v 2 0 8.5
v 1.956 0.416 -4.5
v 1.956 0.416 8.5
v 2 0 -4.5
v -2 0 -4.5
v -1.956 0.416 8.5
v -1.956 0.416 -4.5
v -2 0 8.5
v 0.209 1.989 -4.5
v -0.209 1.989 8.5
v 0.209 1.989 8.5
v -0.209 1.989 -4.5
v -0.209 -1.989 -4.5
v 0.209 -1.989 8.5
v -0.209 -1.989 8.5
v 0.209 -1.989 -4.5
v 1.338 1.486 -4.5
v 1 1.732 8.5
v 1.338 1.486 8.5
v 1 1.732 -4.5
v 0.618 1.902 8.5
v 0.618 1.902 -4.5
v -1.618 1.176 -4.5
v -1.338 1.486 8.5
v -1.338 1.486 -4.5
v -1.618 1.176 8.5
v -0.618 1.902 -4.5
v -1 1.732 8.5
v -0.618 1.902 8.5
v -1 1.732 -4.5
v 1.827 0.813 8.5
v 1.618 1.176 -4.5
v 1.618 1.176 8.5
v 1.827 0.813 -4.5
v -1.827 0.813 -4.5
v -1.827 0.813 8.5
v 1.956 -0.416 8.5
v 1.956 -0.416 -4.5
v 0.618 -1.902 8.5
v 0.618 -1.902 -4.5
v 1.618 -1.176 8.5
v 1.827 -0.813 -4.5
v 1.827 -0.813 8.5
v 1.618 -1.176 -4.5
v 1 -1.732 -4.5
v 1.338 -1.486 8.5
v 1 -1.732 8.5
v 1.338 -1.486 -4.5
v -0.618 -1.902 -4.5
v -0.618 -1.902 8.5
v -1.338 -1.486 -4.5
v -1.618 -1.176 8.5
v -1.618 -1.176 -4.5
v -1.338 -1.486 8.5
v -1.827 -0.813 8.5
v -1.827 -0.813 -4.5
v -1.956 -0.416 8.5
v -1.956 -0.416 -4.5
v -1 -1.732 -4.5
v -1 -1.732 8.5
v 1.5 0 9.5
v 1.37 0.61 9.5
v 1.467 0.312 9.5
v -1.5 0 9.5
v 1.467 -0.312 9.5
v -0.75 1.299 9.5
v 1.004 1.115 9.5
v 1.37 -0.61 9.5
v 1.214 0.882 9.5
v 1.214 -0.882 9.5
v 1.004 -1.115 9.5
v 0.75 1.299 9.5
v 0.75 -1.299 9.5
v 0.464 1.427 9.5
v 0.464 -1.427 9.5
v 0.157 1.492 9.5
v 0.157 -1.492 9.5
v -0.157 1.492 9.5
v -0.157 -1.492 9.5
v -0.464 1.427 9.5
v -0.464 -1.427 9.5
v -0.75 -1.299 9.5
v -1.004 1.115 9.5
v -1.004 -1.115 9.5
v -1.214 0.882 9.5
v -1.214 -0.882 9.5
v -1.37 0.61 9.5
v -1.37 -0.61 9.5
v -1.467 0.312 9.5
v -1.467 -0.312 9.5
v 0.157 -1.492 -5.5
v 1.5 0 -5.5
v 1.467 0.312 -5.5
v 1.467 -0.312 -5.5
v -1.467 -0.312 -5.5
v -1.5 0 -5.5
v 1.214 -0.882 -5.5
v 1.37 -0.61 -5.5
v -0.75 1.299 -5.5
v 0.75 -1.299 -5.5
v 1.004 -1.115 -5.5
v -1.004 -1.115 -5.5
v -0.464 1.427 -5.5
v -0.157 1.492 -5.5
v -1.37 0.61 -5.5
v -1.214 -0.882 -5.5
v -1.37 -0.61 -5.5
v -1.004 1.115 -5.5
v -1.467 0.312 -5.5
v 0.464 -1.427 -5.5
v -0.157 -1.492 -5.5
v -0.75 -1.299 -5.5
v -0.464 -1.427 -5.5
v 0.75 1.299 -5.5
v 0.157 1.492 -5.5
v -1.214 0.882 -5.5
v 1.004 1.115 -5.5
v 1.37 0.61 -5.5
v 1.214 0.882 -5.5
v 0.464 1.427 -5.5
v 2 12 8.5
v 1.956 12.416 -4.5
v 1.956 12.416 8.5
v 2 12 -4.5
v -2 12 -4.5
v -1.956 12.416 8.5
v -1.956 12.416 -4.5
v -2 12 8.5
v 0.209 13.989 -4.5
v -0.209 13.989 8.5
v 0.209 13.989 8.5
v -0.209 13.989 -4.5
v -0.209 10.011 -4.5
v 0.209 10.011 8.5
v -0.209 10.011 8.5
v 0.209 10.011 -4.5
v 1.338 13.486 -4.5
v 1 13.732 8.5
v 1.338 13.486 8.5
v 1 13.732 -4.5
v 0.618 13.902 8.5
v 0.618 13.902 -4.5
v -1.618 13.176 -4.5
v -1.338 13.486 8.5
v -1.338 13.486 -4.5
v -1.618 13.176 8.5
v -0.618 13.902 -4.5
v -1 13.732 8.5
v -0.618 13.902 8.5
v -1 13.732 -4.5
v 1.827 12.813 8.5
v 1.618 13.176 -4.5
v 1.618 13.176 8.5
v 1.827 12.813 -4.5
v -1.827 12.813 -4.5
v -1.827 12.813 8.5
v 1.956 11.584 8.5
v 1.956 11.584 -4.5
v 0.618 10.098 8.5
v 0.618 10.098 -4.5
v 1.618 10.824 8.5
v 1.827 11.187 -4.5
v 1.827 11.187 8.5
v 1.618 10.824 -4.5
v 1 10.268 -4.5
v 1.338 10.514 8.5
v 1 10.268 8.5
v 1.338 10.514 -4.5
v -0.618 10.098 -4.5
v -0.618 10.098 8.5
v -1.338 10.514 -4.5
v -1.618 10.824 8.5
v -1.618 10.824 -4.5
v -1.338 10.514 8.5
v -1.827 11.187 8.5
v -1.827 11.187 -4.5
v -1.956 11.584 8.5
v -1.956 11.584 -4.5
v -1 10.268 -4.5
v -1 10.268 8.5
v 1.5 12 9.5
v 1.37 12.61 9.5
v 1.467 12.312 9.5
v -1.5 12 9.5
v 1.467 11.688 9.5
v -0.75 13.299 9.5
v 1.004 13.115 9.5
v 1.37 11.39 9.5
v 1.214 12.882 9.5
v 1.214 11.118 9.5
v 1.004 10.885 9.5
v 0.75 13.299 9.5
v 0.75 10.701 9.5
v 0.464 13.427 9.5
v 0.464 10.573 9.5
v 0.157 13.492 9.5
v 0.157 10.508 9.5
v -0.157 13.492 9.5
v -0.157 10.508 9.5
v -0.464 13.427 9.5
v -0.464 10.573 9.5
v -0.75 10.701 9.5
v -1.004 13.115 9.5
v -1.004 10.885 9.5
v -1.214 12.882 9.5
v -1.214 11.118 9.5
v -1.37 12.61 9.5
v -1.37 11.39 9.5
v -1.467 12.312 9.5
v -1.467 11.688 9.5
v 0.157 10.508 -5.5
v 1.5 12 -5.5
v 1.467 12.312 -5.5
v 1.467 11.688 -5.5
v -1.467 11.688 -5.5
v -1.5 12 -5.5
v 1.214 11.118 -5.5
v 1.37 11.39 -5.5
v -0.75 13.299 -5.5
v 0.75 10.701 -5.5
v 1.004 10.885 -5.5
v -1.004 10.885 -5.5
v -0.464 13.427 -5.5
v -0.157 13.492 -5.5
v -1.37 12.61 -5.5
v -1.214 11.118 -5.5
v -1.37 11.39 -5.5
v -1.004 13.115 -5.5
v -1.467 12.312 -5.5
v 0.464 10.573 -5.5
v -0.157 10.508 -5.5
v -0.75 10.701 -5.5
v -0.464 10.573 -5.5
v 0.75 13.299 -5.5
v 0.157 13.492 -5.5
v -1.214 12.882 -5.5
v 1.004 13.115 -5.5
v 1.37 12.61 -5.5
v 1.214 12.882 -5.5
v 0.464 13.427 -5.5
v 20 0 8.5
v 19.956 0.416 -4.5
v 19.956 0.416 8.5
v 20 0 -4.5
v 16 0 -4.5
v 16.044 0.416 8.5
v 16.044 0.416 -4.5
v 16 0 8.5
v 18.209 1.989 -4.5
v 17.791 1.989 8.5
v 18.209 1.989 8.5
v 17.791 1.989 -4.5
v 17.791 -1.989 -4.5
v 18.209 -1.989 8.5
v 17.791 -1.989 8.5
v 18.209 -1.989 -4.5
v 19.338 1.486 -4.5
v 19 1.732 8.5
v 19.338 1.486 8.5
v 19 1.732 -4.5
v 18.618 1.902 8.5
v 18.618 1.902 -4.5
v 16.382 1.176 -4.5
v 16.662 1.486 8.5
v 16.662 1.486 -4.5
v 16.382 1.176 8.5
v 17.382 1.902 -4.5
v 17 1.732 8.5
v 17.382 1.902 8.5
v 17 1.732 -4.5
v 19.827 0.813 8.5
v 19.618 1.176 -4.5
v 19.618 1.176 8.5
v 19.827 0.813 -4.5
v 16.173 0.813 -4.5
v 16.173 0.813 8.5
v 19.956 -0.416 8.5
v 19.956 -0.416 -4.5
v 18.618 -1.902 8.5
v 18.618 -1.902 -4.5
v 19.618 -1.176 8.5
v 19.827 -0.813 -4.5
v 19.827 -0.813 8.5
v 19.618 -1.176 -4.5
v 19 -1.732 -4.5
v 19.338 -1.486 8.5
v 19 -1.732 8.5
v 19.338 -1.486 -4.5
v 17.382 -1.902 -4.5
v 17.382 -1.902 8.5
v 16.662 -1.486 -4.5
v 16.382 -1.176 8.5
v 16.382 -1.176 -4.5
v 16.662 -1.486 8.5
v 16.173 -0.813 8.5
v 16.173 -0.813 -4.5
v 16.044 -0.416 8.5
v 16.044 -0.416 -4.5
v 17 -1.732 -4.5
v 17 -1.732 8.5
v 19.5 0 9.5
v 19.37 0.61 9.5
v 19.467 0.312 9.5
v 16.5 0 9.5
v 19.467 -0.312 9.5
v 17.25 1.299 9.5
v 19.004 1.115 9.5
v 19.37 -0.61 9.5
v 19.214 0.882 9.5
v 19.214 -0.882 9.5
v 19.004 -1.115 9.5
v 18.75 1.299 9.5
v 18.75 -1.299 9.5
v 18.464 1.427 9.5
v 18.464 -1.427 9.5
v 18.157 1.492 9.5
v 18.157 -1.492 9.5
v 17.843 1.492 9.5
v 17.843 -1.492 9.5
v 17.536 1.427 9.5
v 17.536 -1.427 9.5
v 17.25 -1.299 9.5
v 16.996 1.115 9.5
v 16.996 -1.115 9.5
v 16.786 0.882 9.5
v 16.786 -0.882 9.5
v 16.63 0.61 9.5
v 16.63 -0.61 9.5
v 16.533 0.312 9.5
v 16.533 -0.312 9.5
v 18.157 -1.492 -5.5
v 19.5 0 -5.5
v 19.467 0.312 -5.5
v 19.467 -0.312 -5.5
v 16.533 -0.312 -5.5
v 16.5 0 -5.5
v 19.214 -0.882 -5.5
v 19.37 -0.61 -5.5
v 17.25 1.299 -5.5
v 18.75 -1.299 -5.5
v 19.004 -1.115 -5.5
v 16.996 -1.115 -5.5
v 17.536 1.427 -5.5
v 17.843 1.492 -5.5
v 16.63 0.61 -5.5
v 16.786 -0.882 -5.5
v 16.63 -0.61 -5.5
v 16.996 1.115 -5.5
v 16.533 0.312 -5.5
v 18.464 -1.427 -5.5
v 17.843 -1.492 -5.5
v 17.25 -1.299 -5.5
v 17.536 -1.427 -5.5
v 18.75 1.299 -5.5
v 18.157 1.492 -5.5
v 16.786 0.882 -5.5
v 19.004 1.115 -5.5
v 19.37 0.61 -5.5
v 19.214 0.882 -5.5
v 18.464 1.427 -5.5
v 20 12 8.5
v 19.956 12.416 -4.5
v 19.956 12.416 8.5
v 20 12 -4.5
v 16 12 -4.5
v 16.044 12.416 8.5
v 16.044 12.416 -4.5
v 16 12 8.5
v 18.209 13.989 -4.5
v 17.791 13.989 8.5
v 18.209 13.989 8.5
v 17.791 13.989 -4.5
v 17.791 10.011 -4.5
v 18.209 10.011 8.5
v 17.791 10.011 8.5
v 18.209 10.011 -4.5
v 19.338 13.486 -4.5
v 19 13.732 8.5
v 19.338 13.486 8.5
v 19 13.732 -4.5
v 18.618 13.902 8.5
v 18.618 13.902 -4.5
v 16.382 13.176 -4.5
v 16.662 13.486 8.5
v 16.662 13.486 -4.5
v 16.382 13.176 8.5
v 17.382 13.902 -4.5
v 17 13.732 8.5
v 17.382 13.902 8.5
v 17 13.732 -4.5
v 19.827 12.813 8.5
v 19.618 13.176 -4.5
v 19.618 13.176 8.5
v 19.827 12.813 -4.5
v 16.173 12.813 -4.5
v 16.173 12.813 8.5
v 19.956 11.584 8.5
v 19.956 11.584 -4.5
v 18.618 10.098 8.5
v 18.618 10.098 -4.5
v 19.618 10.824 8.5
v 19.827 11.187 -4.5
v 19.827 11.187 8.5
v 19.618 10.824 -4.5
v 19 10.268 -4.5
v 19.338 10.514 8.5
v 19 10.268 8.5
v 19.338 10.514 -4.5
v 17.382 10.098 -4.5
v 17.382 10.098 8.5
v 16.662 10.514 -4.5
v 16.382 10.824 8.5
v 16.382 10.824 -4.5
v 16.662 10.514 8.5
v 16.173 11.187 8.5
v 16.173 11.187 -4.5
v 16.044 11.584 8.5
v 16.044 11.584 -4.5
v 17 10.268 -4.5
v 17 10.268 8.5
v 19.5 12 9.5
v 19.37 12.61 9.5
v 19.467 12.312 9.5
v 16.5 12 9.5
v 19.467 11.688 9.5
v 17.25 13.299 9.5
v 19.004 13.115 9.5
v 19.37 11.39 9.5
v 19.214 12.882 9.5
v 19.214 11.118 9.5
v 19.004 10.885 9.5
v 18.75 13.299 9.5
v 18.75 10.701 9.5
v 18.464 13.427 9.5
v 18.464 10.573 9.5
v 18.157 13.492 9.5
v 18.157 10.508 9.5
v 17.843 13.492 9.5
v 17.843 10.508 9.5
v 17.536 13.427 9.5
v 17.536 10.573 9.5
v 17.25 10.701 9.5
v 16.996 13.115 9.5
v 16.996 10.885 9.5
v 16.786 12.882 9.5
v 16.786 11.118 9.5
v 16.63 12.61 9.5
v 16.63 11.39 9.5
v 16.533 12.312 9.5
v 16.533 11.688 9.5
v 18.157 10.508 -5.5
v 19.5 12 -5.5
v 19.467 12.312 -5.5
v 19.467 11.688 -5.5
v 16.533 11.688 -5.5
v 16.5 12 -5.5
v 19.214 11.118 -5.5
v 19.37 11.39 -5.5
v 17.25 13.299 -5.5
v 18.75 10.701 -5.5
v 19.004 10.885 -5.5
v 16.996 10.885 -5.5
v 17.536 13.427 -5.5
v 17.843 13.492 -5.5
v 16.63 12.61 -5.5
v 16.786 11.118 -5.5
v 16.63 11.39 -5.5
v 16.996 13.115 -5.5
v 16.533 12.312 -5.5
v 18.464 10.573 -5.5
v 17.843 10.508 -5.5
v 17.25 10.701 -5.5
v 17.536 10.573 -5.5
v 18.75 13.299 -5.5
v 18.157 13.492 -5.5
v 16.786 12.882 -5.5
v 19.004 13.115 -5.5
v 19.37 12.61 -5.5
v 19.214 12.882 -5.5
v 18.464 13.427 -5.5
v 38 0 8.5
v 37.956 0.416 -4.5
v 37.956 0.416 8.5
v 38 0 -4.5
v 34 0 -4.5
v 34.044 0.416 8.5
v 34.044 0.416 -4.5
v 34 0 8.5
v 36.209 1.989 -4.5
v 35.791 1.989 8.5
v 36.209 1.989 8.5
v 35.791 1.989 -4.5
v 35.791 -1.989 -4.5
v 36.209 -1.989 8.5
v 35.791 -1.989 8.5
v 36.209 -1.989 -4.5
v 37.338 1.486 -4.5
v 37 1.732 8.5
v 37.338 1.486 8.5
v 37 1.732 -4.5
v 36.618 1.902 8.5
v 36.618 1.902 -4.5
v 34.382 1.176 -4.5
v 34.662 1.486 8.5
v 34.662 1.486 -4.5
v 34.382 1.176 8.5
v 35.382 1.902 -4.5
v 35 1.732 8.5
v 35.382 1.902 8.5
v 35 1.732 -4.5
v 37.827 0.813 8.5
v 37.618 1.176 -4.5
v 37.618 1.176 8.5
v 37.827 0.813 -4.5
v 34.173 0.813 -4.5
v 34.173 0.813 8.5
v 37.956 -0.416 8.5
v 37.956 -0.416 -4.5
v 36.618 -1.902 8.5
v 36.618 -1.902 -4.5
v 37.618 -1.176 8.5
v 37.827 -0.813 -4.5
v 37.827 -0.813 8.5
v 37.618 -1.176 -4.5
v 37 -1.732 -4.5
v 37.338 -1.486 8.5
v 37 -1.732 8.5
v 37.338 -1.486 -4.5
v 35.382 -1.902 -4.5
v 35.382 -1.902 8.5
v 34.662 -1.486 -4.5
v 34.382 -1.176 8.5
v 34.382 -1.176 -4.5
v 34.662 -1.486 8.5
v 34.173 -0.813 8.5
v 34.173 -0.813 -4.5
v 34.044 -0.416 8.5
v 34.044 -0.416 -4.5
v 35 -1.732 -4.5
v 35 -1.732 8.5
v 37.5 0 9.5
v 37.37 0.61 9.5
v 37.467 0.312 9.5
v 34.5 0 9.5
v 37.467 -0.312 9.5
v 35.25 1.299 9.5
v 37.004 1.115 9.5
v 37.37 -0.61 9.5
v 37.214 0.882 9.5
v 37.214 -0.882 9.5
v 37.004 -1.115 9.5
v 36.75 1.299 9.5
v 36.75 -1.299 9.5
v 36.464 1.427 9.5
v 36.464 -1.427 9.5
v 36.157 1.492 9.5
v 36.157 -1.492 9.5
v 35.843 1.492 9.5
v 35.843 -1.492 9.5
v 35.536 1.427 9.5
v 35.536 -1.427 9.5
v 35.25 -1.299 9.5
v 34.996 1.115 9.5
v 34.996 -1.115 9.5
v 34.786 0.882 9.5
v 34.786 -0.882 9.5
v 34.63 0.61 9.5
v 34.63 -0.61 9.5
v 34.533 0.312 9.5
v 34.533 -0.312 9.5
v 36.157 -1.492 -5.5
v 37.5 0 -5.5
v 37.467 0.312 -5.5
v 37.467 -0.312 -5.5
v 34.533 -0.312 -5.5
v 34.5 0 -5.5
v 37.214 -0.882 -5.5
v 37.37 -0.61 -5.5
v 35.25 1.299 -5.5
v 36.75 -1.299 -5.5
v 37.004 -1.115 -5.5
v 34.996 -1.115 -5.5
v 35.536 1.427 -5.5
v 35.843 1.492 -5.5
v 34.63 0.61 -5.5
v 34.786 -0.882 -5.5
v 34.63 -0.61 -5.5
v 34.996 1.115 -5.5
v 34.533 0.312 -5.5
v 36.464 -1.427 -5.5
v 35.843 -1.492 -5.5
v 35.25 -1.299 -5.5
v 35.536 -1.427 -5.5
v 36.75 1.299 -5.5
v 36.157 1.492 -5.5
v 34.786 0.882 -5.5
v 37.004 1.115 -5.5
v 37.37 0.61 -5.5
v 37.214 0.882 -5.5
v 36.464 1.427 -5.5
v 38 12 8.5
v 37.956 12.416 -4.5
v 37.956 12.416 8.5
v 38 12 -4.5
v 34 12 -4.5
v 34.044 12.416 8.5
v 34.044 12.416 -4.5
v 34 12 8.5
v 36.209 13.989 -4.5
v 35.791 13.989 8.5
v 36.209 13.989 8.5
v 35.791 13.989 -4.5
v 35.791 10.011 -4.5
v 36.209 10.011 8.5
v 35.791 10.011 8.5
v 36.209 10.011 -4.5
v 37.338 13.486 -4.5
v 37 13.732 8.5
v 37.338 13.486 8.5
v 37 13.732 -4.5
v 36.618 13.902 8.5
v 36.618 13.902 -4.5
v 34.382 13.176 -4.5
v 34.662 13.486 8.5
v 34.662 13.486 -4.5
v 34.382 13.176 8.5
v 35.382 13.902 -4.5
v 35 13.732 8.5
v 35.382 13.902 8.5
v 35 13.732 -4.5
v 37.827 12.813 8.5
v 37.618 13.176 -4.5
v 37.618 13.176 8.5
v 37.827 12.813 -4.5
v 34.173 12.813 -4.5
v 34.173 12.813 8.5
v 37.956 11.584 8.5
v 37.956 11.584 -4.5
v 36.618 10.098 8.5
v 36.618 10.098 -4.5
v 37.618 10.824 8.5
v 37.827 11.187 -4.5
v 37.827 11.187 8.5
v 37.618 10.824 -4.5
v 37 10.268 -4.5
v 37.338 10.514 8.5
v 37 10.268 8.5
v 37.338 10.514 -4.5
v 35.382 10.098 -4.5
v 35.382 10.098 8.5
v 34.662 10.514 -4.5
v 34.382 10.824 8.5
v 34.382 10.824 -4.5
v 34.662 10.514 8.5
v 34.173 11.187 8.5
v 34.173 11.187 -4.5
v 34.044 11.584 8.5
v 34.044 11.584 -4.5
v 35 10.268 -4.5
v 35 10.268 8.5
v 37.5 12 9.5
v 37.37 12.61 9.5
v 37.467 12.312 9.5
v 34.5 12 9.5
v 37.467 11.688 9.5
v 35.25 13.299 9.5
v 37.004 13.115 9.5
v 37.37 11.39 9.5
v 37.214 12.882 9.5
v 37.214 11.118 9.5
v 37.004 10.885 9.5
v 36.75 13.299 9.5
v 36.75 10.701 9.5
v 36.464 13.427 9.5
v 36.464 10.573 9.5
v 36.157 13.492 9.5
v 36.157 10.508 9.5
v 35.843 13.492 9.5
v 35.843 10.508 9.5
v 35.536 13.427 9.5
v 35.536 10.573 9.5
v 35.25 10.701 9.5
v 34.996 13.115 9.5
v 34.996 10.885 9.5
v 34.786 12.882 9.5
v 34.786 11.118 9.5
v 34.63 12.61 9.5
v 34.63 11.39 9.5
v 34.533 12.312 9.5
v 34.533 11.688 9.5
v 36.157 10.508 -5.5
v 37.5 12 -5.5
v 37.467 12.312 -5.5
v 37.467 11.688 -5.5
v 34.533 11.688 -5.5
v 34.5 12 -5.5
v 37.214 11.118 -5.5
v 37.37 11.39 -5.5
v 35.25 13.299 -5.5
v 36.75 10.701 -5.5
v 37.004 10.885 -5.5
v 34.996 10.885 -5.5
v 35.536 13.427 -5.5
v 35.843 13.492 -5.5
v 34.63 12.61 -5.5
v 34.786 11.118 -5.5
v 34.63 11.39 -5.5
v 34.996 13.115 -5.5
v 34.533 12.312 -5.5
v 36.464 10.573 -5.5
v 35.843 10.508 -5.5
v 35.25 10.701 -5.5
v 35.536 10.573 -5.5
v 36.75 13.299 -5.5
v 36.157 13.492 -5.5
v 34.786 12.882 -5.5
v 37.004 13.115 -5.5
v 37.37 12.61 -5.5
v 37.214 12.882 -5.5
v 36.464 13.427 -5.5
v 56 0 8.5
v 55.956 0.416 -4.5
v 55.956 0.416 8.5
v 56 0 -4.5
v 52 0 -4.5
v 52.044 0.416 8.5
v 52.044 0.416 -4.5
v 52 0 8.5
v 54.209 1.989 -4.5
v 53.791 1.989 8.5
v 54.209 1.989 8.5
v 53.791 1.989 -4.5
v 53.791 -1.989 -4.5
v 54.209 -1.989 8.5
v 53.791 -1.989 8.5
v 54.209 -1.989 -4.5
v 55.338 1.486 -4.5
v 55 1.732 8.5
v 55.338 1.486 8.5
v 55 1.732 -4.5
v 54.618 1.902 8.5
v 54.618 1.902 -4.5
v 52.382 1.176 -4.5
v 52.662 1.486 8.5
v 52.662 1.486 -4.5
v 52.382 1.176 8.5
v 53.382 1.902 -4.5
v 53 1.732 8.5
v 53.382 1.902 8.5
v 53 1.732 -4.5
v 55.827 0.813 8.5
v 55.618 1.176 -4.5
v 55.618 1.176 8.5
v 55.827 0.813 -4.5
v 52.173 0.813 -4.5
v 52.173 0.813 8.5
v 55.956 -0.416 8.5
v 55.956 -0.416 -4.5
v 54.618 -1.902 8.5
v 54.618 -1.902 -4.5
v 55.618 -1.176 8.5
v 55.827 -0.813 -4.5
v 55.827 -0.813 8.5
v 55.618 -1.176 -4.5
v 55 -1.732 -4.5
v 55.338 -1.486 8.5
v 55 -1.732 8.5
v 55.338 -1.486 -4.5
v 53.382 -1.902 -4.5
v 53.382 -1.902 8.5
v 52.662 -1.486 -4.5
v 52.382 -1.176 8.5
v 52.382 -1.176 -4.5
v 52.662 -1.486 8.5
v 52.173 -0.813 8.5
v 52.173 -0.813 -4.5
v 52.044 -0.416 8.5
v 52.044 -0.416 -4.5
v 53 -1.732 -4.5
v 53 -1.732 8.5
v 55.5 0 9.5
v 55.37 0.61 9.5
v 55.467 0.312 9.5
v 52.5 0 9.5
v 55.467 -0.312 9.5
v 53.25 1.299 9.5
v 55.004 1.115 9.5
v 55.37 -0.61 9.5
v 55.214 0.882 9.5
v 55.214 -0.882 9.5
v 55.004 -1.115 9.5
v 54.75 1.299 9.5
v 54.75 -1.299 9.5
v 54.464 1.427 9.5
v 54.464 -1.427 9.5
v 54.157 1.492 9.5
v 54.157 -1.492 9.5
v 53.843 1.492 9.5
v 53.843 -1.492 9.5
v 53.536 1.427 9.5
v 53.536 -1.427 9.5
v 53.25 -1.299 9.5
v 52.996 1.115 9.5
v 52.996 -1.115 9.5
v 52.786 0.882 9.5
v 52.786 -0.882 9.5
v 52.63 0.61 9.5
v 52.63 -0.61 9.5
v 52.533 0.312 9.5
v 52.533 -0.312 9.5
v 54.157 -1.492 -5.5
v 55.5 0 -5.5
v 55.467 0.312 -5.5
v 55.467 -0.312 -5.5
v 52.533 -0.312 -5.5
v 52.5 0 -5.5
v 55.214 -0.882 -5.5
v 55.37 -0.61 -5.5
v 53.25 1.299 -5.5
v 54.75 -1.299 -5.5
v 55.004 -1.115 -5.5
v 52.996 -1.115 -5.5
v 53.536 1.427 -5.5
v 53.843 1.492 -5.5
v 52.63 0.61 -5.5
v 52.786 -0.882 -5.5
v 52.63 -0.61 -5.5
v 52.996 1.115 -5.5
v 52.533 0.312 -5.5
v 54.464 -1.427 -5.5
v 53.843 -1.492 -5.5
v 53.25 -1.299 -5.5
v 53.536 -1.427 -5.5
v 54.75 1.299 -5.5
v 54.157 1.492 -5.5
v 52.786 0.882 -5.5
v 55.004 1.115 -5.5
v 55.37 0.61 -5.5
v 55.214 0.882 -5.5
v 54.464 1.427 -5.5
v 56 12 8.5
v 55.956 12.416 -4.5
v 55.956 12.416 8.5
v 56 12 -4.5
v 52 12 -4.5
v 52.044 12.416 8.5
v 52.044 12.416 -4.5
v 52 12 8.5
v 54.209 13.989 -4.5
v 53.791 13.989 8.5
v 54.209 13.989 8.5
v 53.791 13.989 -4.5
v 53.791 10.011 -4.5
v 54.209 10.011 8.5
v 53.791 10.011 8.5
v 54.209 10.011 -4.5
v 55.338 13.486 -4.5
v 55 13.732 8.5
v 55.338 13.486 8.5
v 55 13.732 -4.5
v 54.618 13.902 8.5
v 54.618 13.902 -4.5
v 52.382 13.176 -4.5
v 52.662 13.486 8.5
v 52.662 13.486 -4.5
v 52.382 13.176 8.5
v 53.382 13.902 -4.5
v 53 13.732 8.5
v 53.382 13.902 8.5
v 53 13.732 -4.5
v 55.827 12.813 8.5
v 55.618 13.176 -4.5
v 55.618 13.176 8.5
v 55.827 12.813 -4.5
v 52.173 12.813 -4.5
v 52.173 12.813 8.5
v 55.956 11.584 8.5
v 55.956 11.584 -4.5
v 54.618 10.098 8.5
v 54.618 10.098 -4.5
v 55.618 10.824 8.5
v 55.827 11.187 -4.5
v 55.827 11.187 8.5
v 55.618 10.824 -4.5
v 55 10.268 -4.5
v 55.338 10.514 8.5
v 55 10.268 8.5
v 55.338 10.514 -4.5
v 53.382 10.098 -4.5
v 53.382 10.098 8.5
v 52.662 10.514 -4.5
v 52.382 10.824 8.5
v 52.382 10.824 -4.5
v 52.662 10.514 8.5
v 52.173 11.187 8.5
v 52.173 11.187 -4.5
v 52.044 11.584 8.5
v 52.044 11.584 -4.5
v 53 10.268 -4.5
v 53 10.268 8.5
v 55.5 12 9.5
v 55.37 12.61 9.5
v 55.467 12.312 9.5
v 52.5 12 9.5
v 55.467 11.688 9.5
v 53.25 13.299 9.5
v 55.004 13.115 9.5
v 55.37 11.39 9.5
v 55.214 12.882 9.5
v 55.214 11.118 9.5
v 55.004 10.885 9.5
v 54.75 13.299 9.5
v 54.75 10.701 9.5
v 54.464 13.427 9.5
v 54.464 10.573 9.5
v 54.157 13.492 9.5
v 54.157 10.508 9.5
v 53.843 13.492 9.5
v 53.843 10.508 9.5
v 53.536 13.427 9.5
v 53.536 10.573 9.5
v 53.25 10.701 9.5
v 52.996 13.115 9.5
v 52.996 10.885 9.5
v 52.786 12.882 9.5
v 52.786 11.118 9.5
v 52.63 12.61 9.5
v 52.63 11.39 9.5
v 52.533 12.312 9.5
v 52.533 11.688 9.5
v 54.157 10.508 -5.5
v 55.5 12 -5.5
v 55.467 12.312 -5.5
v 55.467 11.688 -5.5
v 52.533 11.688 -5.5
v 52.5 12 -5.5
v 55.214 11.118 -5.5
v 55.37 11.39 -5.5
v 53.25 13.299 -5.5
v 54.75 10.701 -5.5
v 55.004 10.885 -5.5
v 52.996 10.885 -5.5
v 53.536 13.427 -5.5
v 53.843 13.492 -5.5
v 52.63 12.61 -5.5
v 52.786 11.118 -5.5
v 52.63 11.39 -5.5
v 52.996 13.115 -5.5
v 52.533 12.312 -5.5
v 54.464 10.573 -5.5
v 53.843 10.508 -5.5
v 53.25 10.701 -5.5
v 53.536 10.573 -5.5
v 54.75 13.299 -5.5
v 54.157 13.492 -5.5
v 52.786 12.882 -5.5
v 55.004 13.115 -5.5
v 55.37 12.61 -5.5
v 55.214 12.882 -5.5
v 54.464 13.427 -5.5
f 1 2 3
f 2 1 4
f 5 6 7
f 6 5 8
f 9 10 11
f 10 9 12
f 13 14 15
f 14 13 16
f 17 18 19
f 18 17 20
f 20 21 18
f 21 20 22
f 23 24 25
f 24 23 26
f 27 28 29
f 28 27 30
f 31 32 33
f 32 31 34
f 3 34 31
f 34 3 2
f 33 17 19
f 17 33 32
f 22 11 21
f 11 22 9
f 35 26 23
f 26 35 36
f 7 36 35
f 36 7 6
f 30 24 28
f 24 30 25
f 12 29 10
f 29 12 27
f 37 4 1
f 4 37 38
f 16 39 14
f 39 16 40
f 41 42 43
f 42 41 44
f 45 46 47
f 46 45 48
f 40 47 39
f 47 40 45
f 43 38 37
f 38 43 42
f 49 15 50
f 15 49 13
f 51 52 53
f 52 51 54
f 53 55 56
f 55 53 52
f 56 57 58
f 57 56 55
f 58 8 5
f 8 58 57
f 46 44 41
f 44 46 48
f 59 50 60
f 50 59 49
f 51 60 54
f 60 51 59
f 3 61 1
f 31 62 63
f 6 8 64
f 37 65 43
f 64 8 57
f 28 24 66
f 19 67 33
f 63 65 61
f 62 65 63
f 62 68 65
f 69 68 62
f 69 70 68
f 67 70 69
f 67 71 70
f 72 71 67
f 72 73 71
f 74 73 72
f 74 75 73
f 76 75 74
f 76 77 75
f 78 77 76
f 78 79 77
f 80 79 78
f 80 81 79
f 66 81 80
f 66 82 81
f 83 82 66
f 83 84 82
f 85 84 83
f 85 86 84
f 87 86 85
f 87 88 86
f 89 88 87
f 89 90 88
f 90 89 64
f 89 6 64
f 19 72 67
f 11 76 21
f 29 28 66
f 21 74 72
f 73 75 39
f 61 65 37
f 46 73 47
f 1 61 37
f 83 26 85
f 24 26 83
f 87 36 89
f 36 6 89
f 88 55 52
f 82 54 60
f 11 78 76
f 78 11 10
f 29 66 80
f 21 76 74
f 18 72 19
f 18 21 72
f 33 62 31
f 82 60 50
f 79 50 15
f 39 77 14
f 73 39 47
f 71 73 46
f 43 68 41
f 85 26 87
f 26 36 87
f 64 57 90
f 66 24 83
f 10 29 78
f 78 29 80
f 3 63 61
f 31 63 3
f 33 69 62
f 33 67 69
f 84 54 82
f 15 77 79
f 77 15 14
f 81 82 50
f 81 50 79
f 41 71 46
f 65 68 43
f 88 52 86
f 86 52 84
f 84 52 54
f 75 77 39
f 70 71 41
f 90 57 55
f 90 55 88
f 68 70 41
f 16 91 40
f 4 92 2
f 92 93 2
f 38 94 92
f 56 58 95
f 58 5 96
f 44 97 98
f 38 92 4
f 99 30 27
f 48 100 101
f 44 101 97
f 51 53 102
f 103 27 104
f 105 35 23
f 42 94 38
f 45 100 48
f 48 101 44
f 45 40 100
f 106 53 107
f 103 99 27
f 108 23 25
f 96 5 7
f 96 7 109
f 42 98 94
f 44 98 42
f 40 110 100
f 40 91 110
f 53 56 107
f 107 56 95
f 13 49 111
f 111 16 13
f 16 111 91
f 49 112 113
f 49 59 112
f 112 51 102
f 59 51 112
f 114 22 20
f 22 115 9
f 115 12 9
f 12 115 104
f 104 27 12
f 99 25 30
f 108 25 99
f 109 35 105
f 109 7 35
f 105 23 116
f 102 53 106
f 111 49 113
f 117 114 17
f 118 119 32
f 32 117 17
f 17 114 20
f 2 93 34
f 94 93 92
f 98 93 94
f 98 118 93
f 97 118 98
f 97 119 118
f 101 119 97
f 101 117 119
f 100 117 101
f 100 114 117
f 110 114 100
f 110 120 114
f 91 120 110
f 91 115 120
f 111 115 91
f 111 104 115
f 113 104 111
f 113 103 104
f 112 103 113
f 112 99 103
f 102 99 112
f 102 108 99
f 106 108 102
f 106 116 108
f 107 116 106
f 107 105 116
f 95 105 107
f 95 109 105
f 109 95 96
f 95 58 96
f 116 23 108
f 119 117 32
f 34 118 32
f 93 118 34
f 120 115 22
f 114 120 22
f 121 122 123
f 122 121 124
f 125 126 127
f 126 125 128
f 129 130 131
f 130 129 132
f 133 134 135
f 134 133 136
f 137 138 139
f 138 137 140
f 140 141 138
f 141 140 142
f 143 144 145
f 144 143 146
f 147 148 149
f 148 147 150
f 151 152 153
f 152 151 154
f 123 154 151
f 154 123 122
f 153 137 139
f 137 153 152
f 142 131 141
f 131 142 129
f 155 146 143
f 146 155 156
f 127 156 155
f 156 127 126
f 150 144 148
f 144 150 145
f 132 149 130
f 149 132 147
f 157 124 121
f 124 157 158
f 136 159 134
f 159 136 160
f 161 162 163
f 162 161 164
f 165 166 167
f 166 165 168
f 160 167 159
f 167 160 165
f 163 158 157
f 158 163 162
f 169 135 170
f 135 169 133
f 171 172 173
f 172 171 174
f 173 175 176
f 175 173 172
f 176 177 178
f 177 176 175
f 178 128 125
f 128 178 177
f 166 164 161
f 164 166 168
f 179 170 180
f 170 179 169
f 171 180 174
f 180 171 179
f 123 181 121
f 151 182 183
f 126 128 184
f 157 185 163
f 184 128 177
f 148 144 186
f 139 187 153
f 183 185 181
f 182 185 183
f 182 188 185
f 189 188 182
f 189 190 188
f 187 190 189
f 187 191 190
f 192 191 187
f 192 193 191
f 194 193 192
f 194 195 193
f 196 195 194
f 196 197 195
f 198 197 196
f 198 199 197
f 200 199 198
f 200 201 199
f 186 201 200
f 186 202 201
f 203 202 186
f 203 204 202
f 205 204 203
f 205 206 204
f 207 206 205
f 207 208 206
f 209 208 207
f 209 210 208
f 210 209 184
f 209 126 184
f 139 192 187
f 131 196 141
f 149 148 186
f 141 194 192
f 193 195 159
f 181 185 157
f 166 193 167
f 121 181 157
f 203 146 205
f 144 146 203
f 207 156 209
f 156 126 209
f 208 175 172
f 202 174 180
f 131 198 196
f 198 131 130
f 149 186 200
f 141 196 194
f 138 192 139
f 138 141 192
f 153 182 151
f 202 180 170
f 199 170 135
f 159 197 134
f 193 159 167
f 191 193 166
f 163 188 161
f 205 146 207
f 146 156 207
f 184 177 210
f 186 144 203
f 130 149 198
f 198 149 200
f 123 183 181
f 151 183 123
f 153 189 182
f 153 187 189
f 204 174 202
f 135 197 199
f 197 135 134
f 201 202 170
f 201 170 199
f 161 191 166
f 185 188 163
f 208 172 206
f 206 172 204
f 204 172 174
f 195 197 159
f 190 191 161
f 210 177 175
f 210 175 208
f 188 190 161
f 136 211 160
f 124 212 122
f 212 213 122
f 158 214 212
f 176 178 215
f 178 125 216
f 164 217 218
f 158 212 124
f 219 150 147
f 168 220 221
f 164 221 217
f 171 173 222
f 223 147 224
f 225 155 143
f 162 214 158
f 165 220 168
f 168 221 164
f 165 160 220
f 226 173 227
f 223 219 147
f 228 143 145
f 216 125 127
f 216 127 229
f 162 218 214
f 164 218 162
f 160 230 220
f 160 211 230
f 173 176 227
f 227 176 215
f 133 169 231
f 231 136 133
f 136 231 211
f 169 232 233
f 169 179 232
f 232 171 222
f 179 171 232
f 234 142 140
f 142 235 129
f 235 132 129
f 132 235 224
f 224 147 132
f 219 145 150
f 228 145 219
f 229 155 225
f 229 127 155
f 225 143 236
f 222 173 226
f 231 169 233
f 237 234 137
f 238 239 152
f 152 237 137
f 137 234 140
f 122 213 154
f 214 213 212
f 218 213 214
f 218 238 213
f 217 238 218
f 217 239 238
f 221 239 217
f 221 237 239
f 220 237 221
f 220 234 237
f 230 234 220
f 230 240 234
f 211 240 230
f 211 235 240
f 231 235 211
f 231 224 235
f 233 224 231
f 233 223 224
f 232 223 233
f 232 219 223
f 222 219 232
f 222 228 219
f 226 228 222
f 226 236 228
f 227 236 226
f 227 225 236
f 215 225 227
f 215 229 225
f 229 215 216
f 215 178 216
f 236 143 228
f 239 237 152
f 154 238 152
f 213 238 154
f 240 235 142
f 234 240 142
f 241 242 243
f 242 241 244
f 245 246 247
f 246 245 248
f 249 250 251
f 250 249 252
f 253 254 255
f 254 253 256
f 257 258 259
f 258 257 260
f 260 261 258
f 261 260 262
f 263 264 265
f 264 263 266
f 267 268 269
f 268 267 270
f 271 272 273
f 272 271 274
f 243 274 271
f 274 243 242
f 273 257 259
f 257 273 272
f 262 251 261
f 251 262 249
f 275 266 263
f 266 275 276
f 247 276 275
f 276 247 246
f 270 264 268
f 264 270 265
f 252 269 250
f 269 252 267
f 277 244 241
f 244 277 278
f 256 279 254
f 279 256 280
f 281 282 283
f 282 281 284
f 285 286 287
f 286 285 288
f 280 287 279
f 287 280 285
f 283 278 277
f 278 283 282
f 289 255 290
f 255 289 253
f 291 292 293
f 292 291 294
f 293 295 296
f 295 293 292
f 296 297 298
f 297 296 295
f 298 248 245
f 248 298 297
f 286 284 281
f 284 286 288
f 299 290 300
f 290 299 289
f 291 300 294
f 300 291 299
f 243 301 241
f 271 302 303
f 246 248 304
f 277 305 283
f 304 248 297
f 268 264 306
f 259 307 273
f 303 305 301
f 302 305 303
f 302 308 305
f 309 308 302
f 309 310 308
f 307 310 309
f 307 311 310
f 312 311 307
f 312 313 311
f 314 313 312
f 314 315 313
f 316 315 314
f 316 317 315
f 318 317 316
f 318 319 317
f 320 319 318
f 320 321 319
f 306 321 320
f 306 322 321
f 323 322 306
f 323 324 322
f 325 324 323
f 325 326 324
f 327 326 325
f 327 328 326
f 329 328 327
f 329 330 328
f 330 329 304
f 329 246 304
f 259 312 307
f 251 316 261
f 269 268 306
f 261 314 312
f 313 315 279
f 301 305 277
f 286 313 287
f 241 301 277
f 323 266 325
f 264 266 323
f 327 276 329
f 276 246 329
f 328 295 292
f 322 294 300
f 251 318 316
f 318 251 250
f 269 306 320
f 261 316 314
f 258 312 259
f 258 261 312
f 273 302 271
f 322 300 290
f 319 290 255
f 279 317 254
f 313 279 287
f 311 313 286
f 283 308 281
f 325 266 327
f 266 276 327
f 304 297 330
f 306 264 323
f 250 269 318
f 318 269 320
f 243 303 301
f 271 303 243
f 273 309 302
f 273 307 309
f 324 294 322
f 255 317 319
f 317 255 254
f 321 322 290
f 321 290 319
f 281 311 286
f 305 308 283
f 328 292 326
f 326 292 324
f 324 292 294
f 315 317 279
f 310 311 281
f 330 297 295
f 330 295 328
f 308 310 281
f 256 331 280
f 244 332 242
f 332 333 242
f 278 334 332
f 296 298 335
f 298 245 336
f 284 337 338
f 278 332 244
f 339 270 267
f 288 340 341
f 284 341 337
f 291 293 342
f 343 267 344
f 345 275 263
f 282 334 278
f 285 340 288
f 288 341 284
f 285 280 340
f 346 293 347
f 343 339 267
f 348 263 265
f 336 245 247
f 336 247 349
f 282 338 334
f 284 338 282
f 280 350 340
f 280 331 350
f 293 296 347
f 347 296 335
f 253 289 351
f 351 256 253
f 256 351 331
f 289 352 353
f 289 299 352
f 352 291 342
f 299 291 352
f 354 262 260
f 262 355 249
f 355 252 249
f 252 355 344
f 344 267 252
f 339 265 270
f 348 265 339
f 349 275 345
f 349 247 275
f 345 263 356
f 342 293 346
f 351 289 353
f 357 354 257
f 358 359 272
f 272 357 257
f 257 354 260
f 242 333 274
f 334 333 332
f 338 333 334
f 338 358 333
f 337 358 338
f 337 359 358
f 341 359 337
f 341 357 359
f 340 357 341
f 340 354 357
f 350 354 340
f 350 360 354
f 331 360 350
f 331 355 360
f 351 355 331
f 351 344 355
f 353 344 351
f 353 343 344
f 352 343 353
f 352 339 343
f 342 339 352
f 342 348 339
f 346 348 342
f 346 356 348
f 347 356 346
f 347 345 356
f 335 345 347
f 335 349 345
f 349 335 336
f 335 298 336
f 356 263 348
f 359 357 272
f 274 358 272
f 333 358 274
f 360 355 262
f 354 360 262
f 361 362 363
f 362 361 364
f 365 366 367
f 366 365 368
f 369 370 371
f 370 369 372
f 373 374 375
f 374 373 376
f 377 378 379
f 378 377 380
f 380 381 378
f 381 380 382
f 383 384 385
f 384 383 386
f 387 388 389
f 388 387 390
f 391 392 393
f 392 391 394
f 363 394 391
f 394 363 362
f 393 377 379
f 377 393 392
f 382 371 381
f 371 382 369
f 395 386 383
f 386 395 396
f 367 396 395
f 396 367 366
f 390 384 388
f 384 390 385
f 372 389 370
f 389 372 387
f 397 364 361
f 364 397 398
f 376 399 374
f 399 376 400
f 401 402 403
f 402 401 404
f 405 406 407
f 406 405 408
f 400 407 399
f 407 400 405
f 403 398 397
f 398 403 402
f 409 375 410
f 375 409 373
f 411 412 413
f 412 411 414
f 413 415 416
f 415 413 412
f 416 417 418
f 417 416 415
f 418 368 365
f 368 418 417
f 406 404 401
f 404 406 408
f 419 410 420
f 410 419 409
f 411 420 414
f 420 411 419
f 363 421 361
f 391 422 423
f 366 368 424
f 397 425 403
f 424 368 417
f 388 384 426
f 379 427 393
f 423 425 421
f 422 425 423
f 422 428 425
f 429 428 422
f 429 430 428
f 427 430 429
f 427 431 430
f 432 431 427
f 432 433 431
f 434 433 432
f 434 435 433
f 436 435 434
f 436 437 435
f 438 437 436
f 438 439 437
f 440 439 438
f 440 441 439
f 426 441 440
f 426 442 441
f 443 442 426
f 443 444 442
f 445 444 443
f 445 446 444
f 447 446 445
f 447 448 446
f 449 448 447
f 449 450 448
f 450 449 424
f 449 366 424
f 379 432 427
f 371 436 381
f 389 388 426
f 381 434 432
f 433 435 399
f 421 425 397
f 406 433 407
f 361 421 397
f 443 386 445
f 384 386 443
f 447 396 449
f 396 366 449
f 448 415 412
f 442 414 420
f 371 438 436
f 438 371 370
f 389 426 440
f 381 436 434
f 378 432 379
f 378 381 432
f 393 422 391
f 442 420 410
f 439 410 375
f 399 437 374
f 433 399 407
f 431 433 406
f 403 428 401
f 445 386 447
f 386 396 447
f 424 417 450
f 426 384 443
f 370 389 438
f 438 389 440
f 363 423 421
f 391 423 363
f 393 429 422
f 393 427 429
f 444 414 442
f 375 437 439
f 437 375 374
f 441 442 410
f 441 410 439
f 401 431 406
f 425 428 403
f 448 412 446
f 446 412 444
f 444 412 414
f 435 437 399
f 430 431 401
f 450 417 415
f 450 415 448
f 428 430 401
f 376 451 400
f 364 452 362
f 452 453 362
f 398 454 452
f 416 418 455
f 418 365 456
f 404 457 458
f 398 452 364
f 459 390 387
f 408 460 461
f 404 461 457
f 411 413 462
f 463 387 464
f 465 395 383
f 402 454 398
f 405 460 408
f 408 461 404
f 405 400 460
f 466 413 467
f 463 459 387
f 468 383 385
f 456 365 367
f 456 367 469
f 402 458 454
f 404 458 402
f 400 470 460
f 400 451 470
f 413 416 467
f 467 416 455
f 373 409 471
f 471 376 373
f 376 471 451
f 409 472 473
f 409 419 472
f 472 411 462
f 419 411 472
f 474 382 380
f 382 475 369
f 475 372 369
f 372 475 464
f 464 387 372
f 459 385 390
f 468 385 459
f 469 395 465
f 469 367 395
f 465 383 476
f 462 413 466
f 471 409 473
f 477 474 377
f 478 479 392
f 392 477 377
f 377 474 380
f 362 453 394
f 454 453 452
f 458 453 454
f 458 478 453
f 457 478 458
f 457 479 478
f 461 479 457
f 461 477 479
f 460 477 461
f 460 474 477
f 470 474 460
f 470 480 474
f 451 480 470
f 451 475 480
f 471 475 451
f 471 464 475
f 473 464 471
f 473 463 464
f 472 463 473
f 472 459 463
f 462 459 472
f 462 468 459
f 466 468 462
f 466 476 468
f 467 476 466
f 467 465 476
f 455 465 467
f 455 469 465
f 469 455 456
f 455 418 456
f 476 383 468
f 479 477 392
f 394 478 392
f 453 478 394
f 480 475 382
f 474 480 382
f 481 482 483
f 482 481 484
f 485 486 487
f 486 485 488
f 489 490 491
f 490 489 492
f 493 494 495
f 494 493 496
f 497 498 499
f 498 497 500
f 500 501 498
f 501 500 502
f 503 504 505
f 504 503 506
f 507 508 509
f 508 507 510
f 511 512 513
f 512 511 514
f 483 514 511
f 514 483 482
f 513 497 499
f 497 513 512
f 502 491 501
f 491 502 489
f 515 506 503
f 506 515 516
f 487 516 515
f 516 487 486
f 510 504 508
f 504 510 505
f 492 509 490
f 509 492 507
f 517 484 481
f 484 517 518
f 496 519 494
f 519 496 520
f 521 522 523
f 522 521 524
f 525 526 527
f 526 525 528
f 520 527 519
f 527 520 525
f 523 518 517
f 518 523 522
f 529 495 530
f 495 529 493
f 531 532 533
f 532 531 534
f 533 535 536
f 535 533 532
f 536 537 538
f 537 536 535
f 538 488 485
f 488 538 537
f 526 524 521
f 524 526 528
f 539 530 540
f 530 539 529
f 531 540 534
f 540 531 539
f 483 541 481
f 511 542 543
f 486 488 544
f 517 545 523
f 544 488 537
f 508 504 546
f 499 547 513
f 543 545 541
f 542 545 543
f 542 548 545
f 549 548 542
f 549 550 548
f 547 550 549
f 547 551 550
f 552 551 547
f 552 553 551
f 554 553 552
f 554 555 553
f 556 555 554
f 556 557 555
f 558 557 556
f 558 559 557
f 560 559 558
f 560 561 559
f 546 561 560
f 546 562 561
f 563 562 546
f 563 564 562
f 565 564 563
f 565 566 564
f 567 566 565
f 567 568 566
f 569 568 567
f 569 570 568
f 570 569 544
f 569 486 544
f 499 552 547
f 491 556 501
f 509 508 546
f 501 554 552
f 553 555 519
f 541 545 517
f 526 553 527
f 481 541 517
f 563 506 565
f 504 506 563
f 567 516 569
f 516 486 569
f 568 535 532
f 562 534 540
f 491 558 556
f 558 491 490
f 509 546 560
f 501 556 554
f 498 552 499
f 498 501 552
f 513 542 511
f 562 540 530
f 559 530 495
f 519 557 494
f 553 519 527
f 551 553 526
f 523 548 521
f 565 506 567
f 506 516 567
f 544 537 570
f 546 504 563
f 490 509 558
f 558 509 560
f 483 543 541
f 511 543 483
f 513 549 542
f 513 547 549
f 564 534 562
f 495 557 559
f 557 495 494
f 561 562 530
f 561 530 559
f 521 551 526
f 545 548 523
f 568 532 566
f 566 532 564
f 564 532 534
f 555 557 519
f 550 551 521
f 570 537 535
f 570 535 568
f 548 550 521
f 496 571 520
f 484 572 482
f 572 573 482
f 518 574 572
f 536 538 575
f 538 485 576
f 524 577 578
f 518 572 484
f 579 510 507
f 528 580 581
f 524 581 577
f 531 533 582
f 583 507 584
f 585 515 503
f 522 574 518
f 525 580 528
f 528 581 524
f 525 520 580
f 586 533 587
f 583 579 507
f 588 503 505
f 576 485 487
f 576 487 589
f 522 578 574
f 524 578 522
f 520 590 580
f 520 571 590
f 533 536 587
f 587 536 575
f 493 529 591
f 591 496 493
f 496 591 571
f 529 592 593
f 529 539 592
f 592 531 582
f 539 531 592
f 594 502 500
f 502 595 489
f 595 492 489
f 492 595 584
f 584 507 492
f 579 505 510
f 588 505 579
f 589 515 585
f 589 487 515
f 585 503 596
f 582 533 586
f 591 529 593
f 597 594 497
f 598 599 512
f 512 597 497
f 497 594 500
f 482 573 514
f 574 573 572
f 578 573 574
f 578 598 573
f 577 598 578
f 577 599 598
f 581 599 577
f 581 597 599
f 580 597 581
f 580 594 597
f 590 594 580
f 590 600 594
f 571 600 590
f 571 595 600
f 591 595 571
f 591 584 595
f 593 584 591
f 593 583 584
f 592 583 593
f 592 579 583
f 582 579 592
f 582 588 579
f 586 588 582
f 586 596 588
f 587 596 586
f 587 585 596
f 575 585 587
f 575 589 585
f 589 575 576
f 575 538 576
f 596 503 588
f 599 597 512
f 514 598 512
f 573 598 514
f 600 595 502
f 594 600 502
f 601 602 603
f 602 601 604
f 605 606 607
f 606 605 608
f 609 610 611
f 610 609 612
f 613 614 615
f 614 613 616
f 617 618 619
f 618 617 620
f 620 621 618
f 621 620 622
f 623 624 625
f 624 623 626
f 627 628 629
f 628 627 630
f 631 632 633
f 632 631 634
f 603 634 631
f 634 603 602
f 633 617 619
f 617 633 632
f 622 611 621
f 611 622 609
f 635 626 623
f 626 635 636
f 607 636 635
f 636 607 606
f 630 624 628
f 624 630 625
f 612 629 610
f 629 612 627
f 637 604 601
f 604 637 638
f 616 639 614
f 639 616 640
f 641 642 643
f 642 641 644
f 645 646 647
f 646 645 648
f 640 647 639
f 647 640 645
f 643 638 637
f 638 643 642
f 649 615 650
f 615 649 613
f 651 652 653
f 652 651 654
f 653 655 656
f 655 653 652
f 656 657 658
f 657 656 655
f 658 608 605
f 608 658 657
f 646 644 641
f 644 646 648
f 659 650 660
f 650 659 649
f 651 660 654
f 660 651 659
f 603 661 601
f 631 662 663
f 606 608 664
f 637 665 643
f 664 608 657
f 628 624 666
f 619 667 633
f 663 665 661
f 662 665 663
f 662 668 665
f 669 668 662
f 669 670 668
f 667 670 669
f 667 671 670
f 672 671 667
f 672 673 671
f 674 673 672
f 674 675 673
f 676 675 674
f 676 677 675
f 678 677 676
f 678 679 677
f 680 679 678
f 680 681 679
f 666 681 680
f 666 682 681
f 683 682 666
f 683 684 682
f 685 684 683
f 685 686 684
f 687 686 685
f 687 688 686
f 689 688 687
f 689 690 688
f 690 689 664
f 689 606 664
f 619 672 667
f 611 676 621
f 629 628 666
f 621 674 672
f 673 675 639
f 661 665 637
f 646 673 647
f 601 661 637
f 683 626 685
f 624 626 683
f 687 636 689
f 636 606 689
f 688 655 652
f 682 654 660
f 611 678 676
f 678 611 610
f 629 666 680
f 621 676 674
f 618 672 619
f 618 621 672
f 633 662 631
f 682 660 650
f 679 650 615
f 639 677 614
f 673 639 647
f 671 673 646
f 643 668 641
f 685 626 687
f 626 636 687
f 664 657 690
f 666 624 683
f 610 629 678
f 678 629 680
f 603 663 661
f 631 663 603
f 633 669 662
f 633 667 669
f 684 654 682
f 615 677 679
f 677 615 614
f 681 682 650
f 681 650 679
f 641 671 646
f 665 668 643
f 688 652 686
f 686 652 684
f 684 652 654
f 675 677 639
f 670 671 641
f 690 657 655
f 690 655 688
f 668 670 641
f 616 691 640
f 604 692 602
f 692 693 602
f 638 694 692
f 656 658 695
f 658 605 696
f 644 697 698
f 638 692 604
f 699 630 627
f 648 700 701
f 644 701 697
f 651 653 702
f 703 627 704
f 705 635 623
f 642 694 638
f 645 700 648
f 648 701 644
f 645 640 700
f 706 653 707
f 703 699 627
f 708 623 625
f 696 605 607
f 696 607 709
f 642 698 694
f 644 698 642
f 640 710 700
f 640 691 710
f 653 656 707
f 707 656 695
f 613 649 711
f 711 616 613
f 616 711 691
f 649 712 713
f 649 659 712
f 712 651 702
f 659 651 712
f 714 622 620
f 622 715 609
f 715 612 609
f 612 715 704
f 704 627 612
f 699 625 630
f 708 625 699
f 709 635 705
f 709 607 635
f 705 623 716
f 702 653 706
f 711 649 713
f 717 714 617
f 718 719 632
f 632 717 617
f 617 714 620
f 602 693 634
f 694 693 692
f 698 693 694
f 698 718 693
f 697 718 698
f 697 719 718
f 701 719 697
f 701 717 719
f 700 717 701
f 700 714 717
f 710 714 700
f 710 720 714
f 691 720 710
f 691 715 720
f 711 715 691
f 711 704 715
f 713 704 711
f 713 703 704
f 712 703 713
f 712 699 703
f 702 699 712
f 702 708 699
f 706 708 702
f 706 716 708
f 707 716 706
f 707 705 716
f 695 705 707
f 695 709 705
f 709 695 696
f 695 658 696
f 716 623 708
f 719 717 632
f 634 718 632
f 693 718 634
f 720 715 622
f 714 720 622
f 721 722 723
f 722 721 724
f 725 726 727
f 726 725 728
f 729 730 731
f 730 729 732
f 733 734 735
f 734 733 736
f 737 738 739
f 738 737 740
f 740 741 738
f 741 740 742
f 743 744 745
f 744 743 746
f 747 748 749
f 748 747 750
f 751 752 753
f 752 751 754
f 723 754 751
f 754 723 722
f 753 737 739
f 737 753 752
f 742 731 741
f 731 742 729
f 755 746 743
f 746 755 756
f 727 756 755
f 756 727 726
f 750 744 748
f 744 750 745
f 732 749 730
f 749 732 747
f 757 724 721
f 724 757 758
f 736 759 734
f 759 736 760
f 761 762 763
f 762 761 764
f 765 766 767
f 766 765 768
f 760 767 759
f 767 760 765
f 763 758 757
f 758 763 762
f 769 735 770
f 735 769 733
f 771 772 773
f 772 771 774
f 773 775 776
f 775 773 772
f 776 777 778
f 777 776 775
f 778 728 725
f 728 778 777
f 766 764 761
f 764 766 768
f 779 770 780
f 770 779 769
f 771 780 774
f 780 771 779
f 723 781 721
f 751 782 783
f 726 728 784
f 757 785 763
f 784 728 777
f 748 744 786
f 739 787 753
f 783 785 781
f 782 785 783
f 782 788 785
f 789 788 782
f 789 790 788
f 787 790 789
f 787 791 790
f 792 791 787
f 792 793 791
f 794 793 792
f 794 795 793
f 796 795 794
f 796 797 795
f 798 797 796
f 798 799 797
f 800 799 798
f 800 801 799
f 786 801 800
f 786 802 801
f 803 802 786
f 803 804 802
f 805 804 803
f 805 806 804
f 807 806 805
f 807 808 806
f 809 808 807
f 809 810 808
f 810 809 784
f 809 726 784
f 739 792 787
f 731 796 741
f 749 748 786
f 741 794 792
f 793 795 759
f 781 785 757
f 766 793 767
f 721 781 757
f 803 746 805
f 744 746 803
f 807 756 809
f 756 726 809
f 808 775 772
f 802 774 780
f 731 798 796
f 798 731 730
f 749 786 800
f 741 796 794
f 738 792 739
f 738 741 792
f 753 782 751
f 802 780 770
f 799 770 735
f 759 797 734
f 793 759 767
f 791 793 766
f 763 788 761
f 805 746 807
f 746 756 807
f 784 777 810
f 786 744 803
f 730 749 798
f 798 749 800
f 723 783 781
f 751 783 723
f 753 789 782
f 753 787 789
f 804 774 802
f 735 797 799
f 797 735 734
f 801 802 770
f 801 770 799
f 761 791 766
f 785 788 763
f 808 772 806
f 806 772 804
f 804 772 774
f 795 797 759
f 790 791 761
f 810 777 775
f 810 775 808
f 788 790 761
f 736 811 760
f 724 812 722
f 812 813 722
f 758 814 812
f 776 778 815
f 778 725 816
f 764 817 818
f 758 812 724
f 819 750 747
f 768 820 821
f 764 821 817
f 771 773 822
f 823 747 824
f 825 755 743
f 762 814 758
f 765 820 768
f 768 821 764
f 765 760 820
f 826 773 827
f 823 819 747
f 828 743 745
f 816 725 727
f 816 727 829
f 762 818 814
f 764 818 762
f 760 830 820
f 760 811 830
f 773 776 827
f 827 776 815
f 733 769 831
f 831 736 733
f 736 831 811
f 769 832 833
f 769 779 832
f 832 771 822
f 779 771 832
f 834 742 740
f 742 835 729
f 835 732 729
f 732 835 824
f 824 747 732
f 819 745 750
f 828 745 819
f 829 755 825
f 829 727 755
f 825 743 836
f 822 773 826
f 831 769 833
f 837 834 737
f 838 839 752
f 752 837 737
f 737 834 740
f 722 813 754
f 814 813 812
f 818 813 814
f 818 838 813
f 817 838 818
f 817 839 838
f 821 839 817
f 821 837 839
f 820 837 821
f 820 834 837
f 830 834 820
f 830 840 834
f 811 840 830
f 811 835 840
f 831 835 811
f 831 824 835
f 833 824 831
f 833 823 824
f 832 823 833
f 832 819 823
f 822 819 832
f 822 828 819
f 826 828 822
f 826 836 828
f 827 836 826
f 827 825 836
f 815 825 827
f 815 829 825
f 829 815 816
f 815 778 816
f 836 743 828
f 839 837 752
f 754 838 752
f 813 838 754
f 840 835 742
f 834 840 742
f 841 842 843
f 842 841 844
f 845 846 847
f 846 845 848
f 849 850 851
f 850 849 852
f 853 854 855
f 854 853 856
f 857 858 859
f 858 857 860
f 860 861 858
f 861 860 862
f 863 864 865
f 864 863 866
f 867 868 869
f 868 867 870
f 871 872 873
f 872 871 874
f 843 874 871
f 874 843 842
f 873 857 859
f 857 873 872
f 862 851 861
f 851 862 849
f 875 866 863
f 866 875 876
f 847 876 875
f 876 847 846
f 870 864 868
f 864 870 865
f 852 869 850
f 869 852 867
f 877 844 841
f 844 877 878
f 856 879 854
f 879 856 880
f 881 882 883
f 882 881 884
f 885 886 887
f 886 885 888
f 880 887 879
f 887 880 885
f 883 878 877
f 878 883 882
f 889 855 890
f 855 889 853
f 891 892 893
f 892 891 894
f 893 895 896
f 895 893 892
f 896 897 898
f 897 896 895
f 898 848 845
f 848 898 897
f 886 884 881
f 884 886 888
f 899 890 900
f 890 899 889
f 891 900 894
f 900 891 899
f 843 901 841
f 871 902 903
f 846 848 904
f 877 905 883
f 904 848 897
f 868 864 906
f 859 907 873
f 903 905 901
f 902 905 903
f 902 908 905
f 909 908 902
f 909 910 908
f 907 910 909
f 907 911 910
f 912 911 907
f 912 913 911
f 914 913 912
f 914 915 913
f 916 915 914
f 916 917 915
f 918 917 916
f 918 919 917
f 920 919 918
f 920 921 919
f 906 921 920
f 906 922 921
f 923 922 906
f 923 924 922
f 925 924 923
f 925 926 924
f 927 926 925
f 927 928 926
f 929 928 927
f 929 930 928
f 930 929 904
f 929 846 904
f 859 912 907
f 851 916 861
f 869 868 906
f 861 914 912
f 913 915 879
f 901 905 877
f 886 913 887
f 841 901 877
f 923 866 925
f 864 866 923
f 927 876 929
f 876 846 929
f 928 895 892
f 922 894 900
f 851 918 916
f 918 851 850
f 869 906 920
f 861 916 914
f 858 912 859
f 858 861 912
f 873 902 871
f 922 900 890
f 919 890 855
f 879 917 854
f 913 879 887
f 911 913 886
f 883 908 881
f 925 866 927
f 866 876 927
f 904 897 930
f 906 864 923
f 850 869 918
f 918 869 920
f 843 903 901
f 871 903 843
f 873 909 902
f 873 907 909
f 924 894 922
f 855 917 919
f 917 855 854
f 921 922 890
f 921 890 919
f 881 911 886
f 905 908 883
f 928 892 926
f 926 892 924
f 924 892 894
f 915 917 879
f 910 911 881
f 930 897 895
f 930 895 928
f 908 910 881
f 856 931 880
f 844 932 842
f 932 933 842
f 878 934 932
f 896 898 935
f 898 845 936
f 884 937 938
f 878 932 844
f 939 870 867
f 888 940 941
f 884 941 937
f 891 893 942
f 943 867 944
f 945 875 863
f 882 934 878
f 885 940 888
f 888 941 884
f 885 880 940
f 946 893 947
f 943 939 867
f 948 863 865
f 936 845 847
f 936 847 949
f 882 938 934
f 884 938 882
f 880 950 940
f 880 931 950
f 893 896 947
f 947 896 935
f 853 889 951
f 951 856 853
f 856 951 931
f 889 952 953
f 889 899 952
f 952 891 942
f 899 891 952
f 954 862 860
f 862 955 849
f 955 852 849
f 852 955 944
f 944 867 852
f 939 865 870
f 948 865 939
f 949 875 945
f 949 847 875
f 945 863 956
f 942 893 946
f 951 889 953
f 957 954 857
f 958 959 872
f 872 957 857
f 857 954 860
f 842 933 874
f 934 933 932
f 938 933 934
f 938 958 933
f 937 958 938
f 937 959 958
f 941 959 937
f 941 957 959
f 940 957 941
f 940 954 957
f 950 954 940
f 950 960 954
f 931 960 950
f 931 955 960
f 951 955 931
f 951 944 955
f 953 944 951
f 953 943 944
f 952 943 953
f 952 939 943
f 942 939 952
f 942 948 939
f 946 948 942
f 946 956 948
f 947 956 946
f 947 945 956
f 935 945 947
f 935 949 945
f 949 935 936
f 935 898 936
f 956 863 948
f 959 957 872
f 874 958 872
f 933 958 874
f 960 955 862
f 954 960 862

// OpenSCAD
// Lote de 8 pines de ensamble para la cabeza de vaca COW AI
// Diametro 4.0 mm, Longitud 15.0 mm, biselados en ambos extremos para insercion suave

$fn = 30;

module single_pin() {
    rotate([0, 90, 0]) {
        cylinder(d = 4.0, h = 13.0, center = true);
        // Biseles en los extremos
        translate([0, 0, 6.5]) cylinder(d1 = 4.0, d2 = 3.0, h = 1.0);
        translate([0, 0, -7.5]) cylinder(d1 = 3.0, d2 = 4.0, h = 1.0);
    }
}

// Matriz de 8 pines separados para imprimir juntos comodamente
for (i = [0:3]) {
    for (j = [0:1]) {
        translate([i * 18, j * 12, 2.0])
            rotate([0, -90, 0])
                single_pin();
    }
}
